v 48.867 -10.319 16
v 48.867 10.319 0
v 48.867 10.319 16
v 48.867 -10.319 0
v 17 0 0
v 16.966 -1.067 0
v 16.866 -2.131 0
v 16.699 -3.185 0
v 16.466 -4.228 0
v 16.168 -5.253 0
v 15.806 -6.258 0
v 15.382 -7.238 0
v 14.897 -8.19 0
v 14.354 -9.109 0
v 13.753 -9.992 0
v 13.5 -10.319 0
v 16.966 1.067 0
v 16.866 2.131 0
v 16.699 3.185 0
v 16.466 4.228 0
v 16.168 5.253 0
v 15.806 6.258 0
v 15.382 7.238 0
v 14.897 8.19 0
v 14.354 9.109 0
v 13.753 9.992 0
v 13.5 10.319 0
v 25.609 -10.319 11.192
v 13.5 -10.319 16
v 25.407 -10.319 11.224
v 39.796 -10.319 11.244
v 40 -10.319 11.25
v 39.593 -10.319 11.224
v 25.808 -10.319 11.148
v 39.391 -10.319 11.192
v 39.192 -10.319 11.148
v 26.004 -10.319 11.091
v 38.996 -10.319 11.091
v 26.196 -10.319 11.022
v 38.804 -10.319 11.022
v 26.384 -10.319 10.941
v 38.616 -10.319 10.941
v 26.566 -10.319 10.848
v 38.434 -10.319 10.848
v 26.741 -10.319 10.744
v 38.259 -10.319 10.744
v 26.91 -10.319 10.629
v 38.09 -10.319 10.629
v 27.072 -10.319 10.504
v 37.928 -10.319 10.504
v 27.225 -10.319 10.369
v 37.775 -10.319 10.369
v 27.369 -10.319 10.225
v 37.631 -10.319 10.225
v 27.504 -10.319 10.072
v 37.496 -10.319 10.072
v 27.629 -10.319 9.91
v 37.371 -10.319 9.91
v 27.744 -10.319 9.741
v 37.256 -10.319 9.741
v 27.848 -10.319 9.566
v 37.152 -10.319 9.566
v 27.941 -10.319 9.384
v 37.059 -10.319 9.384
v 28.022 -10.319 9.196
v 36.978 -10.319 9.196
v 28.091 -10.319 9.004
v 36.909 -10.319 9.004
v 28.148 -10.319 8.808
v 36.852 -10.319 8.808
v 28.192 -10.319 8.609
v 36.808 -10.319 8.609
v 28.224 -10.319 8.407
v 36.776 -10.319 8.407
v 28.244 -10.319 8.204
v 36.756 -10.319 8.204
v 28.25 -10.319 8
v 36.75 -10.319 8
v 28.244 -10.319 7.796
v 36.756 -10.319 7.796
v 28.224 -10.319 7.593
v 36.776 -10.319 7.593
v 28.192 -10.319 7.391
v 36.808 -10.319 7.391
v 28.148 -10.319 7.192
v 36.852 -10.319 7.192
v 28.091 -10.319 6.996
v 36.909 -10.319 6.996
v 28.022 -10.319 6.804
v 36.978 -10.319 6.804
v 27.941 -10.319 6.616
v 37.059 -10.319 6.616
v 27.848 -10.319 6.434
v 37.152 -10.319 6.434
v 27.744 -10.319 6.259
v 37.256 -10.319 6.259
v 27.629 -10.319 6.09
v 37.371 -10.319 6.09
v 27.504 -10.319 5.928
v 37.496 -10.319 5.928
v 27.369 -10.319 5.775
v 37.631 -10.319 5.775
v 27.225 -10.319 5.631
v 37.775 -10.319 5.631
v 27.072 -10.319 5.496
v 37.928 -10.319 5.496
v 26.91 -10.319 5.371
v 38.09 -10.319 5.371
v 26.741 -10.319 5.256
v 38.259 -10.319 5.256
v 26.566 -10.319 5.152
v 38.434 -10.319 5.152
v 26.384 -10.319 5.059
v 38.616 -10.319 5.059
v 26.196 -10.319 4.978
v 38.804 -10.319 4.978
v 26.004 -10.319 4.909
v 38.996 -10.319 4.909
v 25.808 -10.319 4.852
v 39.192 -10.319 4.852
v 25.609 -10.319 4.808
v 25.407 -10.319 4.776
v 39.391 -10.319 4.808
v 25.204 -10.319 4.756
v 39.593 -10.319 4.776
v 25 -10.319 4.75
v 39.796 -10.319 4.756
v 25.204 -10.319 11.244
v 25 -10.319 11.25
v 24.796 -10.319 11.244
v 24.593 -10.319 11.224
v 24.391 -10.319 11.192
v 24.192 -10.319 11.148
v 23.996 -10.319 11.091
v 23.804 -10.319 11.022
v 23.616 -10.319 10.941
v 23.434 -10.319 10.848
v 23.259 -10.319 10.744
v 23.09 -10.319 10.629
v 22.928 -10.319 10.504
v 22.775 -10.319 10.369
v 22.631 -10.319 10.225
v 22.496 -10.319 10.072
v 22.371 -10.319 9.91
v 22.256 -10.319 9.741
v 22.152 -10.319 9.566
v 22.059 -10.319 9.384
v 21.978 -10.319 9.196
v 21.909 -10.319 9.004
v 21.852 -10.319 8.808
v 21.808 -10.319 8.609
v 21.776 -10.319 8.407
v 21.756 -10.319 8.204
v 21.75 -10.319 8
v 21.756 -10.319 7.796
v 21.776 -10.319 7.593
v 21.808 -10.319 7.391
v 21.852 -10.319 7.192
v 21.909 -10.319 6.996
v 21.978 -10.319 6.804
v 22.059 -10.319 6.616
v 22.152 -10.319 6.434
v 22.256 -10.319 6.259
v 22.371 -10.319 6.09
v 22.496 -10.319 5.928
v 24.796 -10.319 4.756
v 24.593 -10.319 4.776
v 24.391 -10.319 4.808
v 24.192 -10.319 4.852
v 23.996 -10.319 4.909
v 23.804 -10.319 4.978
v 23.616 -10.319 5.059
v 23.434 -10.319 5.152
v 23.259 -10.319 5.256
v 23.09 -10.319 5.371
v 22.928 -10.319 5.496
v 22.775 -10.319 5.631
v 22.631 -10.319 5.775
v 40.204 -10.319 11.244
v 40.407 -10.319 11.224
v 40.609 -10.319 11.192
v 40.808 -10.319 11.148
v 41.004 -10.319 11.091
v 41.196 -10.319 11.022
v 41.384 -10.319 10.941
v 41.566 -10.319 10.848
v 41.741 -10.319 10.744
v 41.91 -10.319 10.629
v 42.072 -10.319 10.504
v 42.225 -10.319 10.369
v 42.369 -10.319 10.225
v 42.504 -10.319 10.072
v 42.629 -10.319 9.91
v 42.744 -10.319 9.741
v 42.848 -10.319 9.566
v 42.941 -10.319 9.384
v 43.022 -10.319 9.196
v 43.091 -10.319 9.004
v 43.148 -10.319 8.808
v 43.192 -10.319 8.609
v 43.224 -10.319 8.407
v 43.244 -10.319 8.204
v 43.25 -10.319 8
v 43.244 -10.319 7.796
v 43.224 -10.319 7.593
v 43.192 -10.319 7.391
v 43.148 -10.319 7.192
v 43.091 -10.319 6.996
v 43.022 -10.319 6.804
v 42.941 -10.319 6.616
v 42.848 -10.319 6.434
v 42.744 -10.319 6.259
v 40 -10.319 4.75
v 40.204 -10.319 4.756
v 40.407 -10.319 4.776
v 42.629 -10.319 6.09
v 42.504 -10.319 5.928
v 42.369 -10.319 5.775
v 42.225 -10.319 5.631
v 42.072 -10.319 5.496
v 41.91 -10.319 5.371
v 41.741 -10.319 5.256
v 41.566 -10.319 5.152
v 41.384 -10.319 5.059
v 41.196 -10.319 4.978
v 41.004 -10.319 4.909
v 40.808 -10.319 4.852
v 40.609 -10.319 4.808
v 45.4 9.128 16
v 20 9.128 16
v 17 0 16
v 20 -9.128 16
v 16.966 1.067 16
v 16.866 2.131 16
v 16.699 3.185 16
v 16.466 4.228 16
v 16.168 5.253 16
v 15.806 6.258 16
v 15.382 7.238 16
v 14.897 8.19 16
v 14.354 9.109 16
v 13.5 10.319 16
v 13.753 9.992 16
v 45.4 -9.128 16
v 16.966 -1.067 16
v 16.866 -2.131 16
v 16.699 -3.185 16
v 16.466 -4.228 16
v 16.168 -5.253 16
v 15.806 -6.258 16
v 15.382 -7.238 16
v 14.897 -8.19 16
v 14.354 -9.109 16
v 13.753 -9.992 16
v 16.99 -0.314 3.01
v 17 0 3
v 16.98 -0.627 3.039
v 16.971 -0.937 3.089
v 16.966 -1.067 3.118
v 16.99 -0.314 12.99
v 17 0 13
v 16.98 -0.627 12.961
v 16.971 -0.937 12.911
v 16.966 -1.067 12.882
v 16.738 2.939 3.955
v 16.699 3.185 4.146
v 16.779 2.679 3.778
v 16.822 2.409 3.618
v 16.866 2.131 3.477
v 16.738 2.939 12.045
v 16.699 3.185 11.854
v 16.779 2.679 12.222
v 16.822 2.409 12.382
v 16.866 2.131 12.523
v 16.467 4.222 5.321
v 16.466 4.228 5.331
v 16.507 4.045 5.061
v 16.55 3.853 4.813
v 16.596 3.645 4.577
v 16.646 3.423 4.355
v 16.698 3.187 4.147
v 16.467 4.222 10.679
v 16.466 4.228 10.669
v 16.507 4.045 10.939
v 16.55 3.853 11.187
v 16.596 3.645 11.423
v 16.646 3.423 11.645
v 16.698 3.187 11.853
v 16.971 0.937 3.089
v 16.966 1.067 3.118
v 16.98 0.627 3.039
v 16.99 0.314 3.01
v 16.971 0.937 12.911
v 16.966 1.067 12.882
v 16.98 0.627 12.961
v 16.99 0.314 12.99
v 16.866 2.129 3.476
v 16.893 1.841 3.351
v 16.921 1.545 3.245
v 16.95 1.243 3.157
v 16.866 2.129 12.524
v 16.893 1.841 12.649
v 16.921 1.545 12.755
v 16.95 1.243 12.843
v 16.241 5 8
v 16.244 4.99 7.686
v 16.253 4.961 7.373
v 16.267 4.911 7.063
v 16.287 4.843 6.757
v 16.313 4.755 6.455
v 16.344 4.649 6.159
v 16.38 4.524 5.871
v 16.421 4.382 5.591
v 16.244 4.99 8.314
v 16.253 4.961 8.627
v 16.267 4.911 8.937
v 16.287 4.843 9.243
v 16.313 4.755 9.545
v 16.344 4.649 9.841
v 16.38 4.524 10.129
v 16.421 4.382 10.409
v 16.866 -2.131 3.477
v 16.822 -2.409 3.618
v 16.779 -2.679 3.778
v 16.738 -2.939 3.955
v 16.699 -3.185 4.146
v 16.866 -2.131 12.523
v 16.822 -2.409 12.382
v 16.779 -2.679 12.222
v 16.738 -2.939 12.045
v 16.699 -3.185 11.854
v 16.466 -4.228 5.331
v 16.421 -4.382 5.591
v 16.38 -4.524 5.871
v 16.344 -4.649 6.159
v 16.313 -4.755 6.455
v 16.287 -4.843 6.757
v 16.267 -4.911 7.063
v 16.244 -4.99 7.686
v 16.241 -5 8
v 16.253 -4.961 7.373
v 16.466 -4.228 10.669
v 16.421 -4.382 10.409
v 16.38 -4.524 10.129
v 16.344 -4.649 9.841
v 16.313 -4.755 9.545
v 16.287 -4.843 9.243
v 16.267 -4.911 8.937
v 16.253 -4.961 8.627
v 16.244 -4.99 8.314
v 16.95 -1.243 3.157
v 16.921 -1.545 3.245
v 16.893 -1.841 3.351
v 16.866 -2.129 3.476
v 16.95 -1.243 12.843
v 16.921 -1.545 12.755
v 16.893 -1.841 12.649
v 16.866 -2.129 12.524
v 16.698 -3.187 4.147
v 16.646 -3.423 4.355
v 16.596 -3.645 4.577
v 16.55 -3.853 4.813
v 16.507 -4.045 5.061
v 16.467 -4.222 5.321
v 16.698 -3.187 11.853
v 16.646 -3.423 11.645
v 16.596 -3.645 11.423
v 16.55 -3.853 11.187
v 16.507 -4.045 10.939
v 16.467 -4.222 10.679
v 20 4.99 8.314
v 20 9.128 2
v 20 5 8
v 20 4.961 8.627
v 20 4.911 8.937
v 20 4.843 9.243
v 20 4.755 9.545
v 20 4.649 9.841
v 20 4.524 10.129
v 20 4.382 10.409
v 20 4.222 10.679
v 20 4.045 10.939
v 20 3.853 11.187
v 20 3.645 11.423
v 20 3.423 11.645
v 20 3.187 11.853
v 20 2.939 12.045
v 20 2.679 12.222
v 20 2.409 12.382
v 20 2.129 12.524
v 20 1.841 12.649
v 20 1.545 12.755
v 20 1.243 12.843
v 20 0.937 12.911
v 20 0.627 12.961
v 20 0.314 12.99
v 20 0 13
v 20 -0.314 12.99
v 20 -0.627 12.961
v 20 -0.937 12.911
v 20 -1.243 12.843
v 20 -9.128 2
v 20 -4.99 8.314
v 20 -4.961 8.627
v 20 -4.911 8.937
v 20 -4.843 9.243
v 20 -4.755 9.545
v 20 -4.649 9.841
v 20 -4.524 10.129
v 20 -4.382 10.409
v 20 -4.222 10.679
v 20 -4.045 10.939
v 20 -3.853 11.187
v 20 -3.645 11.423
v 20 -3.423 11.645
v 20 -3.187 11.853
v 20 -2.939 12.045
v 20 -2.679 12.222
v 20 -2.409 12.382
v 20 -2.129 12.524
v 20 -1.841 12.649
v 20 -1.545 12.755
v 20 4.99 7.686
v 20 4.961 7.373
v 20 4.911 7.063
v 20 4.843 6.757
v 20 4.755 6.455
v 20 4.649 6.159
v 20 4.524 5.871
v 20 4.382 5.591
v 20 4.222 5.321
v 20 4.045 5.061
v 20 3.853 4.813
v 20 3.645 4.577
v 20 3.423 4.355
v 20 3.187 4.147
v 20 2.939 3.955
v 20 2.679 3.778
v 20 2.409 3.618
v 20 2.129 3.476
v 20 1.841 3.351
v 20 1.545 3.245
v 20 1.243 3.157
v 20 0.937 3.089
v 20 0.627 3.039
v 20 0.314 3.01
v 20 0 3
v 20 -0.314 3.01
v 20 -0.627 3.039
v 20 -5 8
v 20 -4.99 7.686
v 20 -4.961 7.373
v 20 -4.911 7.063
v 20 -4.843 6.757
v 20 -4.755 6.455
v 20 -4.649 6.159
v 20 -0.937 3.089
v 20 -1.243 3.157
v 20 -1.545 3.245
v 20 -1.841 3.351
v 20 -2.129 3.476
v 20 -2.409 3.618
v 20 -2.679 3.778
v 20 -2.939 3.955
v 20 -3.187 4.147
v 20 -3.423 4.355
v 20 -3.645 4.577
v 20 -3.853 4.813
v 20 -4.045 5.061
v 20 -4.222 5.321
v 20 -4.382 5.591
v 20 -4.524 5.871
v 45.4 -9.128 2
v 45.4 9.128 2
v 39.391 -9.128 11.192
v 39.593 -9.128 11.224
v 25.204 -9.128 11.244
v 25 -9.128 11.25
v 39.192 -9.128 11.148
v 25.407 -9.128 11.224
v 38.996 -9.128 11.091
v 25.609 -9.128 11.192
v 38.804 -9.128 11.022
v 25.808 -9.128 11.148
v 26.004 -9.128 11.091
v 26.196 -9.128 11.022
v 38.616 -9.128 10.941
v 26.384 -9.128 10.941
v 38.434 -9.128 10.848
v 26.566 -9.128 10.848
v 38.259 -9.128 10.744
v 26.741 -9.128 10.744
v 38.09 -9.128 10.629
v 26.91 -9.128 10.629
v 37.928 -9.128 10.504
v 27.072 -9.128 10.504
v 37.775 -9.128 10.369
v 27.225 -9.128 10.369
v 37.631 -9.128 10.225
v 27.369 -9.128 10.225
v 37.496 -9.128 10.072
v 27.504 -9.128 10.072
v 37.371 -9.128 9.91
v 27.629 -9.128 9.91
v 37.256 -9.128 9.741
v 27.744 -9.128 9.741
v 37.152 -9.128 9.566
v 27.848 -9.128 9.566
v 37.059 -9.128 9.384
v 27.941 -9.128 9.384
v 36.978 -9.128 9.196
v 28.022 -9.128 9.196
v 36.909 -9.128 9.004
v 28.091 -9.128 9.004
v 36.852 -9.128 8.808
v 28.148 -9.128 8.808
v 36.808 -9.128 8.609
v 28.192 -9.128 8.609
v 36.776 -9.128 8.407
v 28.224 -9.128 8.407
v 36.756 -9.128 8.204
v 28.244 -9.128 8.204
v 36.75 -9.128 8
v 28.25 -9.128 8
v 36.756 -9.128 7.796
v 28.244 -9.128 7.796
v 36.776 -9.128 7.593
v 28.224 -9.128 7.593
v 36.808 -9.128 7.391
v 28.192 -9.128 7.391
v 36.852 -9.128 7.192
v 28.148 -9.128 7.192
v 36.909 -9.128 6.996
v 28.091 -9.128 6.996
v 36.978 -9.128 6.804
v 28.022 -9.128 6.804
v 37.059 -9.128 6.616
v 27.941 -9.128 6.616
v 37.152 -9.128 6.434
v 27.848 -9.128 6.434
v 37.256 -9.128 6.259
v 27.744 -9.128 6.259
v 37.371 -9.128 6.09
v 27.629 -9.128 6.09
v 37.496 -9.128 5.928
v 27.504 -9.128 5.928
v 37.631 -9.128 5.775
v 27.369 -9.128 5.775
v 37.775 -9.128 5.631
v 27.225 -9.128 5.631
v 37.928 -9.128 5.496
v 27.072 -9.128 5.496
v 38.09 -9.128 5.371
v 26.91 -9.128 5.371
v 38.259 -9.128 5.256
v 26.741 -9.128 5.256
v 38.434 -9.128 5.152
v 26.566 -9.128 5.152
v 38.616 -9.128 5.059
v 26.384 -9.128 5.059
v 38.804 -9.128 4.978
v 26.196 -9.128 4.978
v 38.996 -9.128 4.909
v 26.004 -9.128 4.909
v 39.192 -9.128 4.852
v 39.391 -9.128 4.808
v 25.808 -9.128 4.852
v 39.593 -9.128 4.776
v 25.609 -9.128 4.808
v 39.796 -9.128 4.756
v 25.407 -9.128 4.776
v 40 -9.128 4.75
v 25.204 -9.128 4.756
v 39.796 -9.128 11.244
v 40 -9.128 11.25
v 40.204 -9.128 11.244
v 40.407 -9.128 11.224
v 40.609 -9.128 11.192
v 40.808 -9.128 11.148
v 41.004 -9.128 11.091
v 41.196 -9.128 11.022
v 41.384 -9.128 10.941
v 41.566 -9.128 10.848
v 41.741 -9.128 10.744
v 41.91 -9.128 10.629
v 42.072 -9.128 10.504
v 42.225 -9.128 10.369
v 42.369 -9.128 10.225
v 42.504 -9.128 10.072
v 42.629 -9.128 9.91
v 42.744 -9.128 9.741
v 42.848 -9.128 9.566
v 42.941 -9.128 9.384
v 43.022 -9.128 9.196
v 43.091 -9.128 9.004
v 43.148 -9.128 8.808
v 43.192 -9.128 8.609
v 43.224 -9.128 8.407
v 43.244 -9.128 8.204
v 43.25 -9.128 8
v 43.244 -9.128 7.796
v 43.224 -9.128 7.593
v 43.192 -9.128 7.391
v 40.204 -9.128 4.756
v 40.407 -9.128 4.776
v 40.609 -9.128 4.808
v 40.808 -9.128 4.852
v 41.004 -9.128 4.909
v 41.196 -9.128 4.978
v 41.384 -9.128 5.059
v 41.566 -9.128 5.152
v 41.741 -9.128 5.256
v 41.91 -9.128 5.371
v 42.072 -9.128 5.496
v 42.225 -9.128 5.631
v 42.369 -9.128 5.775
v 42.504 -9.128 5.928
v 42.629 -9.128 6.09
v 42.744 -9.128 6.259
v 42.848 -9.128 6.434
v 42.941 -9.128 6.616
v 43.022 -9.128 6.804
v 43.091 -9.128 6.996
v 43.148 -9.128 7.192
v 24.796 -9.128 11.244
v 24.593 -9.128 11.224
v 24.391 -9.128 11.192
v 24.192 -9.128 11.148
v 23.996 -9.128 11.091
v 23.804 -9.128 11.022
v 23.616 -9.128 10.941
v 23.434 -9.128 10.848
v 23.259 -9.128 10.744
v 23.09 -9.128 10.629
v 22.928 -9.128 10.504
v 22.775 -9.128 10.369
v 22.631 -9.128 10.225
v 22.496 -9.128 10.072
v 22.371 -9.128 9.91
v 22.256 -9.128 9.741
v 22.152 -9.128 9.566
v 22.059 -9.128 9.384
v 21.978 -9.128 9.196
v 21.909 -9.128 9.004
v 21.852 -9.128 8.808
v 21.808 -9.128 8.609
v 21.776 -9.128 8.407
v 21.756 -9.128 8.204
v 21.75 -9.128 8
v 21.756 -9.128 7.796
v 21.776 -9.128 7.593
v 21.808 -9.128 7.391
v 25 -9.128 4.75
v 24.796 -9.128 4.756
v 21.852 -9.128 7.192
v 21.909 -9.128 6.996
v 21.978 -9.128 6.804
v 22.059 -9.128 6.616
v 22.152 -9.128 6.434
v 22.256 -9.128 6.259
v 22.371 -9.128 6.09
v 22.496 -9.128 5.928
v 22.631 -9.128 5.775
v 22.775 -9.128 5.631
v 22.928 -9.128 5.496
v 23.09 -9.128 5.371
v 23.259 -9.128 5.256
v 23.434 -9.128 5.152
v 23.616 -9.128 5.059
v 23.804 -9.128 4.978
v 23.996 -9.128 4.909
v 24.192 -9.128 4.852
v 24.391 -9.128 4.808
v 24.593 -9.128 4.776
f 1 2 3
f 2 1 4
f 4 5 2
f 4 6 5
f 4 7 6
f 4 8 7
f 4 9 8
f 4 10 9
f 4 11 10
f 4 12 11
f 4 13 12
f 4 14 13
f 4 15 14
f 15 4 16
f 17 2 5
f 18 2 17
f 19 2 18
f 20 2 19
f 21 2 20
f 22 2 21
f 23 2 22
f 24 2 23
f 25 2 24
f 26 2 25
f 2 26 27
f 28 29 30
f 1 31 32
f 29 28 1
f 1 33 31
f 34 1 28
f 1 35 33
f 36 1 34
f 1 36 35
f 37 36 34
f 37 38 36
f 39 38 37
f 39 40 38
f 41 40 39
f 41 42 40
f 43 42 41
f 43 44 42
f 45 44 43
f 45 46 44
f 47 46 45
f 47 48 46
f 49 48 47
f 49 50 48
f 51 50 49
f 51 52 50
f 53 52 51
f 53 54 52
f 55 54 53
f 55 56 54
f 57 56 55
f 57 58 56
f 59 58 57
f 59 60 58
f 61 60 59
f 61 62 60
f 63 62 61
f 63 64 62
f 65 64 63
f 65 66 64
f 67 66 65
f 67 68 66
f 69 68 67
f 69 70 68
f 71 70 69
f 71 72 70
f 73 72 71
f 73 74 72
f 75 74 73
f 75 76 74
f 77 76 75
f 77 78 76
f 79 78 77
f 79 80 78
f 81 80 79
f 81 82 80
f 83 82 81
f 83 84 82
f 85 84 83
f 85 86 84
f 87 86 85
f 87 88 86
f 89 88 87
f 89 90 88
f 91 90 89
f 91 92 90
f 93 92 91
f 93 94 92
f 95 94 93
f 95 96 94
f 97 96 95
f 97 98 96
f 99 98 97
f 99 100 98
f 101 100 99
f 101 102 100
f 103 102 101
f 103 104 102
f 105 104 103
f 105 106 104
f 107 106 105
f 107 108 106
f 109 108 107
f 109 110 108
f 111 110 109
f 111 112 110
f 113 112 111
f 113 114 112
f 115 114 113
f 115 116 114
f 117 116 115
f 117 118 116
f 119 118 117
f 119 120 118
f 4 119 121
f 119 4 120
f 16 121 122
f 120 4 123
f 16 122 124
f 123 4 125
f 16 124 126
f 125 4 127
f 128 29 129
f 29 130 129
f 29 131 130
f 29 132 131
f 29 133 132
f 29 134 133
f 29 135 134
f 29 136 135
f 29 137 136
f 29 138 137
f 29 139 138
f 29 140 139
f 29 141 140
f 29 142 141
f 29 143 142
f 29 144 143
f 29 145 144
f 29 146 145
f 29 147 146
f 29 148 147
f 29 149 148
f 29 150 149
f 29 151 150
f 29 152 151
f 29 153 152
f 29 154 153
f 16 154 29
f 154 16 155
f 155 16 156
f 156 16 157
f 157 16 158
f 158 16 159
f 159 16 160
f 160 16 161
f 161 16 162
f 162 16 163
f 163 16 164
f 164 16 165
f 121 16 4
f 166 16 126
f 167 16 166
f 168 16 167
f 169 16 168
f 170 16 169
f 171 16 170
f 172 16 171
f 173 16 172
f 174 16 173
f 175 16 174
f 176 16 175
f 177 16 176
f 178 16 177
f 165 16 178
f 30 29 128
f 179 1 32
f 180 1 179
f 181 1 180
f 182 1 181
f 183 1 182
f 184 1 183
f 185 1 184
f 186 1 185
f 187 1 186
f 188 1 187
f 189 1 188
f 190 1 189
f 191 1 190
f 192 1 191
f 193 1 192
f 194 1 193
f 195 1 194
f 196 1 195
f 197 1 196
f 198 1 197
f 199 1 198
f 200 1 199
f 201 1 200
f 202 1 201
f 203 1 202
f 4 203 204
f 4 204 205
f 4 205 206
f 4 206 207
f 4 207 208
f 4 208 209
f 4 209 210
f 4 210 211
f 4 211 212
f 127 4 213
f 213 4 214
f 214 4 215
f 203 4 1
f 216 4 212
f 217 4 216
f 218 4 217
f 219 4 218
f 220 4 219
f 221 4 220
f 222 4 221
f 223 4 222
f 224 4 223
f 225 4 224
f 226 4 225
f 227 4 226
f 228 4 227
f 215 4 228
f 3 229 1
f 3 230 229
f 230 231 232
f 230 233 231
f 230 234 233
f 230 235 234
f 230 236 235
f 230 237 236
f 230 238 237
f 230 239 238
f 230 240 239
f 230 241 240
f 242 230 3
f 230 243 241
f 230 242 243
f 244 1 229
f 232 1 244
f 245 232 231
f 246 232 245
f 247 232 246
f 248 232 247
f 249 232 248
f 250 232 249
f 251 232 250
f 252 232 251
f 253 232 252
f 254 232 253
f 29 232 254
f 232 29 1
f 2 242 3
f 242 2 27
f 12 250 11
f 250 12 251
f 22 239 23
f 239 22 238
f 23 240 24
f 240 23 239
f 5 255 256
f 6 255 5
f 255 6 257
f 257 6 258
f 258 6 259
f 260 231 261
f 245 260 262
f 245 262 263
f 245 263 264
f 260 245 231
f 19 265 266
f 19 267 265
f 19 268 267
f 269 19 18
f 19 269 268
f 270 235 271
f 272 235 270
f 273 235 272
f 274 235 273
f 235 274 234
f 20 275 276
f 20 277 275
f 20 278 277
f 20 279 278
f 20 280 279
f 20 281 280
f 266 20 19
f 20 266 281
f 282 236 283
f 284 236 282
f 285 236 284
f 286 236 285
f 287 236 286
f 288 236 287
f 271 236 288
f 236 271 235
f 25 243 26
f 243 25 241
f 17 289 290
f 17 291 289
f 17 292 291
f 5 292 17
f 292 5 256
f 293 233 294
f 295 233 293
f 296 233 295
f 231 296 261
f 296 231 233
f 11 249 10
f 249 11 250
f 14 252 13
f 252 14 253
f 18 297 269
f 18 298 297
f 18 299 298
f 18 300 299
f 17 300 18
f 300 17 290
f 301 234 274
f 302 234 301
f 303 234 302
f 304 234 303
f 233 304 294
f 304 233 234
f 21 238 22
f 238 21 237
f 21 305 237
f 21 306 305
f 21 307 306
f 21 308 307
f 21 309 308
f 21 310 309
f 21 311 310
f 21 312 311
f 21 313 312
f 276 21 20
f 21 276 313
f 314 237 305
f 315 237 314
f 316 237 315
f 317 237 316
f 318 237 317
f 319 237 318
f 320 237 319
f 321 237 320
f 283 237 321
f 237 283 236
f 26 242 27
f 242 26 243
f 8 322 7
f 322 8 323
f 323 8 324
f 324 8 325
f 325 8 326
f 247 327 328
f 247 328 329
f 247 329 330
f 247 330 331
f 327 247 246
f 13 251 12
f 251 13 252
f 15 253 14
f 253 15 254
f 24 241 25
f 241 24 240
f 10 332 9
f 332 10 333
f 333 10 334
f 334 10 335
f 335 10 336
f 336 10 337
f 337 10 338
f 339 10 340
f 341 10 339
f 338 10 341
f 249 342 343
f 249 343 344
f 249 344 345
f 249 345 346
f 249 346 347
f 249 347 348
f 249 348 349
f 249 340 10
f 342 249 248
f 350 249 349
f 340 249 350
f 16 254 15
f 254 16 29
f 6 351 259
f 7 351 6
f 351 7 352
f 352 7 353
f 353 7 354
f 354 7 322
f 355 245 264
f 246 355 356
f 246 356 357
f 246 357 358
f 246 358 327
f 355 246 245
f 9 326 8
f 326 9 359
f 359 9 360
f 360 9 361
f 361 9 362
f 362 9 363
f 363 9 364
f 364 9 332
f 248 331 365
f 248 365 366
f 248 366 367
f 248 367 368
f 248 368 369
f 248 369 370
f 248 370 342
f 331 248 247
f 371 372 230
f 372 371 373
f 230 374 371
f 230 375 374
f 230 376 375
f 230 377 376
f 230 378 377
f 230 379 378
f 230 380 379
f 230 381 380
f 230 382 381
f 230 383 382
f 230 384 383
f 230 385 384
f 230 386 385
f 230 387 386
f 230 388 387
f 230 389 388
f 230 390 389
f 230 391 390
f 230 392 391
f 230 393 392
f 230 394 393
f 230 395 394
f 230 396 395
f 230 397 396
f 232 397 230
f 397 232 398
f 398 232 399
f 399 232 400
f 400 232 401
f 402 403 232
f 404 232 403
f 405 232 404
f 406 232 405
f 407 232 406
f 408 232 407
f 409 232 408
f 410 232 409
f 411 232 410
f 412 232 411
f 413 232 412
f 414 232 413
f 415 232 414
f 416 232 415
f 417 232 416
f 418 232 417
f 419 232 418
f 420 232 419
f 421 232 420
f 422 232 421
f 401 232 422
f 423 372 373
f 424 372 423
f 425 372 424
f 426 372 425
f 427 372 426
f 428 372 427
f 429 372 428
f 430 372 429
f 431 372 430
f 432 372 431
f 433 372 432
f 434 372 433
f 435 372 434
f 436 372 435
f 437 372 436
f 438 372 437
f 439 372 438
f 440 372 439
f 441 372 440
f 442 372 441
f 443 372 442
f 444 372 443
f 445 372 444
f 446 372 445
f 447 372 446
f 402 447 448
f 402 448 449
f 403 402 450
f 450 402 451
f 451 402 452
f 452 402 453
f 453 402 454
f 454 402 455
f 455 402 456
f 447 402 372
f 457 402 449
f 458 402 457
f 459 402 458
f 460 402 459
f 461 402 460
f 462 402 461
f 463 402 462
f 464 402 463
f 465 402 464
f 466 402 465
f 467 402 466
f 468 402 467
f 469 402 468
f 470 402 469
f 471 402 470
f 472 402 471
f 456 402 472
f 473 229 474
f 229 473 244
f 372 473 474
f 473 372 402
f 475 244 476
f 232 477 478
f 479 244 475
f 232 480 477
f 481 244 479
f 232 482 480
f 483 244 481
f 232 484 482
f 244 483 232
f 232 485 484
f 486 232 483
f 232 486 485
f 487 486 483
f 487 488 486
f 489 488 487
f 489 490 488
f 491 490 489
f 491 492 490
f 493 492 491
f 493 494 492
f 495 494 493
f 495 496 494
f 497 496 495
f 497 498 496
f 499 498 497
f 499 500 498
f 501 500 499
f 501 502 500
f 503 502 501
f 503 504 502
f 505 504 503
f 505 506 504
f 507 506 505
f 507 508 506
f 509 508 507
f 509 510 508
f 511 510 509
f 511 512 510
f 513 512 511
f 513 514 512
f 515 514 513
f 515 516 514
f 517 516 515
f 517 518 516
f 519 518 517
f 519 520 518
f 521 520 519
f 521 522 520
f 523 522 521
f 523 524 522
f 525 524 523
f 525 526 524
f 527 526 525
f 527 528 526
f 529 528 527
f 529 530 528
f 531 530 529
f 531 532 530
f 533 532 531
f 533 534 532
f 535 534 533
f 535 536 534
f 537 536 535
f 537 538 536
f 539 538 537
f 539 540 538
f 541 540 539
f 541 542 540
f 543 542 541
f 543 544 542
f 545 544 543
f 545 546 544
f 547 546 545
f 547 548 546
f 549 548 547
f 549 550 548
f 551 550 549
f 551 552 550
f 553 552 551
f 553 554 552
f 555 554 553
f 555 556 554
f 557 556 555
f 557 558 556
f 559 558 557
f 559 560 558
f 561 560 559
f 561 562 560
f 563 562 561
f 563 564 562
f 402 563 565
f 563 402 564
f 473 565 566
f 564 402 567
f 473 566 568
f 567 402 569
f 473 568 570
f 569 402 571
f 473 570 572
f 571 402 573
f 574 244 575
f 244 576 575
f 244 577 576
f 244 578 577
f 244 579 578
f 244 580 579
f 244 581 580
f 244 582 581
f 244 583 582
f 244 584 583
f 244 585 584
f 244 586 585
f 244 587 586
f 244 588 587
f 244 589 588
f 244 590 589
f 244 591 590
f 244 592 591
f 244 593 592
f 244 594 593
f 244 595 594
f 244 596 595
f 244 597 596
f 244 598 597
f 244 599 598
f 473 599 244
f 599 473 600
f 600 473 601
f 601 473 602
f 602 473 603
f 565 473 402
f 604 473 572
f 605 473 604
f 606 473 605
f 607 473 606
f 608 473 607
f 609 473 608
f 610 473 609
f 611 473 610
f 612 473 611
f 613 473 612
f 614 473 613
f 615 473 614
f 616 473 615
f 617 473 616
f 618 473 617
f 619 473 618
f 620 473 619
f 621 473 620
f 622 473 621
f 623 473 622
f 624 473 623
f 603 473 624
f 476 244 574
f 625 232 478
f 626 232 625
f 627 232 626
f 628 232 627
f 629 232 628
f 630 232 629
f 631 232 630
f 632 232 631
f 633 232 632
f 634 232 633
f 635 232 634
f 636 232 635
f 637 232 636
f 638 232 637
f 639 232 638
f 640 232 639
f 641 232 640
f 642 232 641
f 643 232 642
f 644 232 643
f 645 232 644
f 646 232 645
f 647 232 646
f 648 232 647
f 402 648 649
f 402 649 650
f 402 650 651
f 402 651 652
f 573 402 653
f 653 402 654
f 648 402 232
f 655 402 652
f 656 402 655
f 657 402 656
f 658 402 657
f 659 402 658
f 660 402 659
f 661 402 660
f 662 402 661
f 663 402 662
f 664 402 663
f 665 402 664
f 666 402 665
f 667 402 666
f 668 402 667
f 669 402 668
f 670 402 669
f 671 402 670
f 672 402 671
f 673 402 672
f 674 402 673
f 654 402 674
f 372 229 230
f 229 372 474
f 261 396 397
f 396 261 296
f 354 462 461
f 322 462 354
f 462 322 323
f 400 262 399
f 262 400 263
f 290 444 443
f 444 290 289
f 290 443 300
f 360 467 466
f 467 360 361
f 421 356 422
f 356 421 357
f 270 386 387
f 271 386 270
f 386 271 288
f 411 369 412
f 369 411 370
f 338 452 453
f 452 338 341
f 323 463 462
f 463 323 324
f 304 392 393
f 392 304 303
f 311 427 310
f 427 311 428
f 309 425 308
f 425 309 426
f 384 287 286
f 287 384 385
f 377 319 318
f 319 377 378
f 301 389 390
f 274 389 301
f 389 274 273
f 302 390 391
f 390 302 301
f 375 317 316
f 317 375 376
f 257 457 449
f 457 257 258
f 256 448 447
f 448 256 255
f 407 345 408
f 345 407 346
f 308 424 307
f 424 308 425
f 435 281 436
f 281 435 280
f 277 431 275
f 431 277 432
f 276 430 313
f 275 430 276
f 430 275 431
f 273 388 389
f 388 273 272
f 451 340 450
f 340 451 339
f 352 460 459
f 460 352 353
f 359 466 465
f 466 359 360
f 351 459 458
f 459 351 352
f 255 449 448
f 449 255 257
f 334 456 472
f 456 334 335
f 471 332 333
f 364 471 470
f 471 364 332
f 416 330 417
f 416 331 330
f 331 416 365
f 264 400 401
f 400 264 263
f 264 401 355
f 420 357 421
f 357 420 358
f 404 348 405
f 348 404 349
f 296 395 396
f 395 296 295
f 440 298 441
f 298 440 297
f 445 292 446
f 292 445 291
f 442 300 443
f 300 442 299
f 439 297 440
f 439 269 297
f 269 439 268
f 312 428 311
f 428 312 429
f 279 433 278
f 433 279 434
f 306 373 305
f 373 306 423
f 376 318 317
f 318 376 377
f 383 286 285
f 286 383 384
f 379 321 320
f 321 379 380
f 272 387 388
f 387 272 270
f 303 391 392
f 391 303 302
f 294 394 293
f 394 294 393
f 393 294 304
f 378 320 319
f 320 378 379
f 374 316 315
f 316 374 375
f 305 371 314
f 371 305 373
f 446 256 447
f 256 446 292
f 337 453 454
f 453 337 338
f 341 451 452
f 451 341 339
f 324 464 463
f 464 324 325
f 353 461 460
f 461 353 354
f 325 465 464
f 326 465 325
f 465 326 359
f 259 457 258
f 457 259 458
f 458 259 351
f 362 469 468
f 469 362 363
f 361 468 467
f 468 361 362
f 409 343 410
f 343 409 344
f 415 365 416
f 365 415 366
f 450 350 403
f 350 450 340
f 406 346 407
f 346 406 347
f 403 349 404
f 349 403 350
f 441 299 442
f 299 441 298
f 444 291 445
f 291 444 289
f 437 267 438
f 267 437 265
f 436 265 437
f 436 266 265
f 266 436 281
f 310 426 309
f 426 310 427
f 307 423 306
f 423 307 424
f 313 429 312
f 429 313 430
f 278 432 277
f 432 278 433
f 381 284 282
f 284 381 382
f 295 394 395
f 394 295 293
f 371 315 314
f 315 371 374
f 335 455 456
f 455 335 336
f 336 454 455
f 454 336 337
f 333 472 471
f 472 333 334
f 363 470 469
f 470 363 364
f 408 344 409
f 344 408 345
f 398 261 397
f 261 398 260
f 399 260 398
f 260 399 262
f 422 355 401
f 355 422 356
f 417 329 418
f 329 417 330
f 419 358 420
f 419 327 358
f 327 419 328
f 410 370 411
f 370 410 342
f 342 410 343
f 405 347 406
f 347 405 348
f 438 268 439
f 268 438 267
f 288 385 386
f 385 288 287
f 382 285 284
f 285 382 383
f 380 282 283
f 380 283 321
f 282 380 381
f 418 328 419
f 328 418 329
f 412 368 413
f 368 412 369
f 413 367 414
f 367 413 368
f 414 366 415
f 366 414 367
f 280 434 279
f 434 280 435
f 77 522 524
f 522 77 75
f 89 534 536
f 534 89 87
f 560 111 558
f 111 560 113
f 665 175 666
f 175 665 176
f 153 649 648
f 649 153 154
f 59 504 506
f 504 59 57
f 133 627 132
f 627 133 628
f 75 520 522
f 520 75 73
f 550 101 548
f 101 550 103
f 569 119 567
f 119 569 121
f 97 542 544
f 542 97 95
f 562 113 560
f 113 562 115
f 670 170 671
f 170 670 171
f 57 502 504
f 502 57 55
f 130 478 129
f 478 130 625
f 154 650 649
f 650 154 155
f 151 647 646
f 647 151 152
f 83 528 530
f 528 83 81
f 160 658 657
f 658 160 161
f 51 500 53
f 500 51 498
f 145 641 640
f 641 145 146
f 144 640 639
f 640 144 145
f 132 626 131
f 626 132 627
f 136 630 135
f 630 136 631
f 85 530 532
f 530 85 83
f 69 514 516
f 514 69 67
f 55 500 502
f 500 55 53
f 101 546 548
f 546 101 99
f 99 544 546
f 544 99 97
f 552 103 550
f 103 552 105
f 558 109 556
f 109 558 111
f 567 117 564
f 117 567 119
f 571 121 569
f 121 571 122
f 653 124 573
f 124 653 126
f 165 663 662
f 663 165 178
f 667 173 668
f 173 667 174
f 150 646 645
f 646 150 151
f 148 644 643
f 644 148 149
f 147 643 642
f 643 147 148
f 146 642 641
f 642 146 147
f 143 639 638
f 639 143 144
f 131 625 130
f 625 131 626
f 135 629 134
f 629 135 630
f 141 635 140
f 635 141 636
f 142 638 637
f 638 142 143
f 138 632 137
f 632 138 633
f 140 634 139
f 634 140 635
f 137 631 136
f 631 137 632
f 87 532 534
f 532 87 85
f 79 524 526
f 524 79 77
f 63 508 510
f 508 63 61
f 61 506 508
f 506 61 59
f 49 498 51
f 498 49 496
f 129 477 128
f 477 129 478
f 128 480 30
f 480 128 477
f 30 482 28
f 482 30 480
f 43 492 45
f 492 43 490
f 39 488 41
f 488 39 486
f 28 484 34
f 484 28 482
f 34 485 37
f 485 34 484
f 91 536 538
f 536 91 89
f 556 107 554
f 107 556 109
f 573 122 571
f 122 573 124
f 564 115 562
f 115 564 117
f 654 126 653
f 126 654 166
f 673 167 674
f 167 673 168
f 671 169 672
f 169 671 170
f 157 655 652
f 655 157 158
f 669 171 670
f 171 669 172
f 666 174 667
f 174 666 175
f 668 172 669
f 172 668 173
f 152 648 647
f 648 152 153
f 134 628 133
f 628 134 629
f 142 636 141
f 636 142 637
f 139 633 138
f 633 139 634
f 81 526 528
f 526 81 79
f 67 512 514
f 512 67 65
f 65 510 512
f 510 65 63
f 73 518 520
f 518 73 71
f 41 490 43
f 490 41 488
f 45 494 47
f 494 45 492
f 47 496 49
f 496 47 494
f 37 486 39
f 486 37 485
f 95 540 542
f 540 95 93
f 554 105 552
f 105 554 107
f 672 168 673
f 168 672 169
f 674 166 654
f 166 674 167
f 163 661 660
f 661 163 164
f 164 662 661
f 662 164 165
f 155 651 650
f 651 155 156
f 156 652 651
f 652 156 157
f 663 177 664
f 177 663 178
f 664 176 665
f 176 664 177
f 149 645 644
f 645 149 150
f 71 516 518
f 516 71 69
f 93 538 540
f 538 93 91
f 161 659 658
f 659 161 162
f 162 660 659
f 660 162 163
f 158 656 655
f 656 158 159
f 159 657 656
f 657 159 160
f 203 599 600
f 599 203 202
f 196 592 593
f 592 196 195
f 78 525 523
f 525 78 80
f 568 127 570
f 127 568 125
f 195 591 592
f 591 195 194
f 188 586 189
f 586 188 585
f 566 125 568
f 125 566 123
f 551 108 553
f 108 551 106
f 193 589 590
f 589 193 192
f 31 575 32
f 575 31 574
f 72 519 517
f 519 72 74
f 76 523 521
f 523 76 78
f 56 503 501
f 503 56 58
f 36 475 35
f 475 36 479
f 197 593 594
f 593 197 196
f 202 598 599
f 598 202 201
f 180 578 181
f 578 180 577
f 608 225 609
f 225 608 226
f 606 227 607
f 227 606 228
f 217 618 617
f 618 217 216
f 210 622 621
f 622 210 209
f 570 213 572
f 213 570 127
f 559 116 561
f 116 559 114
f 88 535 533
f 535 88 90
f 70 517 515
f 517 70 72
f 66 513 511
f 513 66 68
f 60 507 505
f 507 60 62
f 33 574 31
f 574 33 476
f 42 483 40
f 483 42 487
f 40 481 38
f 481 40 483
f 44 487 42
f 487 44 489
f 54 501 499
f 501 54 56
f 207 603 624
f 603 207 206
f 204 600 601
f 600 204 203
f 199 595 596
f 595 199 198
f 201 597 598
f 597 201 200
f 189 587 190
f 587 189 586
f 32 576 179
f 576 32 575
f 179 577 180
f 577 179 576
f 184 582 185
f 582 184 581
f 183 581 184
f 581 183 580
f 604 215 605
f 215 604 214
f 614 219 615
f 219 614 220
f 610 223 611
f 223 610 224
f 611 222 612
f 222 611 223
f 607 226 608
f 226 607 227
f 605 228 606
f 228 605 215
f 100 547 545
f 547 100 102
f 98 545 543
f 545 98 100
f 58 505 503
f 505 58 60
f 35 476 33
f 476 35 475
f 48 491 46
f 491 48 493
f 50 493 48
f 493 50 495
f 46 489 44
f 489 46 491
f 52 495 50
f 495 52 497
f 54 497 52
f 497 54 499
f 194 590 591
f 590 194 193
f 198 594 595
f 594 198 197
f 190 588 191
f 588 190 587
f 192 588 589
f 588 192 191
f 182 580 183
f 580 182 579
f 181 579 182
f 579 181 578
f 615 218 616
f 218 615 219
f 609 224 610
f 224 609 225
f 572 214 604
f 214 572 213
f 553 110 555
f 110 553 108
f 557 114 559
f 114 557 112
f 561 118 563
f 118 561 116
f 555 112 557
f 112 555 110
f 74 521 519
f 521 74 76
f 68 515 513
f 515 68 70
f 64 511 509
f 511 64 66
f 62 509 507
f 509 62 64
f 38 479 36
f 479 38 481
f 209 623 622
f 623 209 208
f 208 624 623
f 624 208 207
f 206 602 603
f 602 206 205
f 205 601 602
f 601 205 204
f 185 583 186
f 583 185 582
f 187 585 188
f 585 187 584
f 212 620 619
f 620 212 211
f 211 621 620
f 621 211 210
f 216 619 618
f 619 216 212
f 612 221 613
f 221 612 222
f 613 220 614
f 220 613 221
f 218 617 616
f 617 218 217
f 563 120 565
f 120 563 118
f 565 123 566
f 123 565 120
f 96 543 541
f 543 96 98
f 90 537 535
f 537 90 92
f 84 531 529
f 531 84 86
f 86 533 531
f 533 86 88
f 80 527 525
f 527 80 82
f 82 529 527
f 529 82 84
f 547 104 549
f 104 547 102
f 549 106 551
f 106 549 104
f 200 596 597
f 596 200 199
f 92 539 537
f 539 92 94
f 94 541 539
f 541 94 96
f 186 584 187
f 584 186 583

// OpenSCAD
$fn=100;

// http://www.gbfans.com/wiki/File:Sean%27s_Proton_Gun_Plans_Page_9.jpg

function inches(mm) = mm * 25.4;

//left_block();
right_block();

module right_block() {
    difference() {
        linear_extrude(16)
        polygon([
            [0,                 -inches(13/32)],
            [15+inches(1+1/3),   -inches(13/32)],
            [15+inches(1+1/3),   inches(13/32)],
            [0,                 inches(13/32)]
        ]);
      
        translate([0,0,-0.1])
        cylinder(d=34,h=17.2);
        
        translate([20,-inches(11.5/32),2])
        cube([inches(1),inches(23/32),16]);
        
        translate([12,0,8])
        rotate([0,90,0])
        cylinder(d=10,h=10);
        
        translate([25,-5,8])
        rotate([90,0,0])
        cylinder(d=6.5,h=10);
        
        translate([40,-5,8])
        rotate([90,0,0])
        cylinder(d=6.5,h=10);
    }
}

module left_block() {
    difference() {
        linear_extrude(16)
        polygon([
            [3,                             0],
            [3,                             -20],
            [-inches(1.5)+3,                -20],
            [-inches(1.5)+3,                -20+inches(10/16)],
            [-inches(1.5)+3+inches(6/12),   inches(13/32)],
            [0,                             inches(13/32)]
        ]);
      
        translate([0,0,-0.1])
        cylinder(d=34,h=17.2);
      
        translate([-inches(1.5)+3-0.1,-20+inches(5/16),8])
        rotate([0,90,0])
        cylinder(d=3,h=5.1);
    }
}
